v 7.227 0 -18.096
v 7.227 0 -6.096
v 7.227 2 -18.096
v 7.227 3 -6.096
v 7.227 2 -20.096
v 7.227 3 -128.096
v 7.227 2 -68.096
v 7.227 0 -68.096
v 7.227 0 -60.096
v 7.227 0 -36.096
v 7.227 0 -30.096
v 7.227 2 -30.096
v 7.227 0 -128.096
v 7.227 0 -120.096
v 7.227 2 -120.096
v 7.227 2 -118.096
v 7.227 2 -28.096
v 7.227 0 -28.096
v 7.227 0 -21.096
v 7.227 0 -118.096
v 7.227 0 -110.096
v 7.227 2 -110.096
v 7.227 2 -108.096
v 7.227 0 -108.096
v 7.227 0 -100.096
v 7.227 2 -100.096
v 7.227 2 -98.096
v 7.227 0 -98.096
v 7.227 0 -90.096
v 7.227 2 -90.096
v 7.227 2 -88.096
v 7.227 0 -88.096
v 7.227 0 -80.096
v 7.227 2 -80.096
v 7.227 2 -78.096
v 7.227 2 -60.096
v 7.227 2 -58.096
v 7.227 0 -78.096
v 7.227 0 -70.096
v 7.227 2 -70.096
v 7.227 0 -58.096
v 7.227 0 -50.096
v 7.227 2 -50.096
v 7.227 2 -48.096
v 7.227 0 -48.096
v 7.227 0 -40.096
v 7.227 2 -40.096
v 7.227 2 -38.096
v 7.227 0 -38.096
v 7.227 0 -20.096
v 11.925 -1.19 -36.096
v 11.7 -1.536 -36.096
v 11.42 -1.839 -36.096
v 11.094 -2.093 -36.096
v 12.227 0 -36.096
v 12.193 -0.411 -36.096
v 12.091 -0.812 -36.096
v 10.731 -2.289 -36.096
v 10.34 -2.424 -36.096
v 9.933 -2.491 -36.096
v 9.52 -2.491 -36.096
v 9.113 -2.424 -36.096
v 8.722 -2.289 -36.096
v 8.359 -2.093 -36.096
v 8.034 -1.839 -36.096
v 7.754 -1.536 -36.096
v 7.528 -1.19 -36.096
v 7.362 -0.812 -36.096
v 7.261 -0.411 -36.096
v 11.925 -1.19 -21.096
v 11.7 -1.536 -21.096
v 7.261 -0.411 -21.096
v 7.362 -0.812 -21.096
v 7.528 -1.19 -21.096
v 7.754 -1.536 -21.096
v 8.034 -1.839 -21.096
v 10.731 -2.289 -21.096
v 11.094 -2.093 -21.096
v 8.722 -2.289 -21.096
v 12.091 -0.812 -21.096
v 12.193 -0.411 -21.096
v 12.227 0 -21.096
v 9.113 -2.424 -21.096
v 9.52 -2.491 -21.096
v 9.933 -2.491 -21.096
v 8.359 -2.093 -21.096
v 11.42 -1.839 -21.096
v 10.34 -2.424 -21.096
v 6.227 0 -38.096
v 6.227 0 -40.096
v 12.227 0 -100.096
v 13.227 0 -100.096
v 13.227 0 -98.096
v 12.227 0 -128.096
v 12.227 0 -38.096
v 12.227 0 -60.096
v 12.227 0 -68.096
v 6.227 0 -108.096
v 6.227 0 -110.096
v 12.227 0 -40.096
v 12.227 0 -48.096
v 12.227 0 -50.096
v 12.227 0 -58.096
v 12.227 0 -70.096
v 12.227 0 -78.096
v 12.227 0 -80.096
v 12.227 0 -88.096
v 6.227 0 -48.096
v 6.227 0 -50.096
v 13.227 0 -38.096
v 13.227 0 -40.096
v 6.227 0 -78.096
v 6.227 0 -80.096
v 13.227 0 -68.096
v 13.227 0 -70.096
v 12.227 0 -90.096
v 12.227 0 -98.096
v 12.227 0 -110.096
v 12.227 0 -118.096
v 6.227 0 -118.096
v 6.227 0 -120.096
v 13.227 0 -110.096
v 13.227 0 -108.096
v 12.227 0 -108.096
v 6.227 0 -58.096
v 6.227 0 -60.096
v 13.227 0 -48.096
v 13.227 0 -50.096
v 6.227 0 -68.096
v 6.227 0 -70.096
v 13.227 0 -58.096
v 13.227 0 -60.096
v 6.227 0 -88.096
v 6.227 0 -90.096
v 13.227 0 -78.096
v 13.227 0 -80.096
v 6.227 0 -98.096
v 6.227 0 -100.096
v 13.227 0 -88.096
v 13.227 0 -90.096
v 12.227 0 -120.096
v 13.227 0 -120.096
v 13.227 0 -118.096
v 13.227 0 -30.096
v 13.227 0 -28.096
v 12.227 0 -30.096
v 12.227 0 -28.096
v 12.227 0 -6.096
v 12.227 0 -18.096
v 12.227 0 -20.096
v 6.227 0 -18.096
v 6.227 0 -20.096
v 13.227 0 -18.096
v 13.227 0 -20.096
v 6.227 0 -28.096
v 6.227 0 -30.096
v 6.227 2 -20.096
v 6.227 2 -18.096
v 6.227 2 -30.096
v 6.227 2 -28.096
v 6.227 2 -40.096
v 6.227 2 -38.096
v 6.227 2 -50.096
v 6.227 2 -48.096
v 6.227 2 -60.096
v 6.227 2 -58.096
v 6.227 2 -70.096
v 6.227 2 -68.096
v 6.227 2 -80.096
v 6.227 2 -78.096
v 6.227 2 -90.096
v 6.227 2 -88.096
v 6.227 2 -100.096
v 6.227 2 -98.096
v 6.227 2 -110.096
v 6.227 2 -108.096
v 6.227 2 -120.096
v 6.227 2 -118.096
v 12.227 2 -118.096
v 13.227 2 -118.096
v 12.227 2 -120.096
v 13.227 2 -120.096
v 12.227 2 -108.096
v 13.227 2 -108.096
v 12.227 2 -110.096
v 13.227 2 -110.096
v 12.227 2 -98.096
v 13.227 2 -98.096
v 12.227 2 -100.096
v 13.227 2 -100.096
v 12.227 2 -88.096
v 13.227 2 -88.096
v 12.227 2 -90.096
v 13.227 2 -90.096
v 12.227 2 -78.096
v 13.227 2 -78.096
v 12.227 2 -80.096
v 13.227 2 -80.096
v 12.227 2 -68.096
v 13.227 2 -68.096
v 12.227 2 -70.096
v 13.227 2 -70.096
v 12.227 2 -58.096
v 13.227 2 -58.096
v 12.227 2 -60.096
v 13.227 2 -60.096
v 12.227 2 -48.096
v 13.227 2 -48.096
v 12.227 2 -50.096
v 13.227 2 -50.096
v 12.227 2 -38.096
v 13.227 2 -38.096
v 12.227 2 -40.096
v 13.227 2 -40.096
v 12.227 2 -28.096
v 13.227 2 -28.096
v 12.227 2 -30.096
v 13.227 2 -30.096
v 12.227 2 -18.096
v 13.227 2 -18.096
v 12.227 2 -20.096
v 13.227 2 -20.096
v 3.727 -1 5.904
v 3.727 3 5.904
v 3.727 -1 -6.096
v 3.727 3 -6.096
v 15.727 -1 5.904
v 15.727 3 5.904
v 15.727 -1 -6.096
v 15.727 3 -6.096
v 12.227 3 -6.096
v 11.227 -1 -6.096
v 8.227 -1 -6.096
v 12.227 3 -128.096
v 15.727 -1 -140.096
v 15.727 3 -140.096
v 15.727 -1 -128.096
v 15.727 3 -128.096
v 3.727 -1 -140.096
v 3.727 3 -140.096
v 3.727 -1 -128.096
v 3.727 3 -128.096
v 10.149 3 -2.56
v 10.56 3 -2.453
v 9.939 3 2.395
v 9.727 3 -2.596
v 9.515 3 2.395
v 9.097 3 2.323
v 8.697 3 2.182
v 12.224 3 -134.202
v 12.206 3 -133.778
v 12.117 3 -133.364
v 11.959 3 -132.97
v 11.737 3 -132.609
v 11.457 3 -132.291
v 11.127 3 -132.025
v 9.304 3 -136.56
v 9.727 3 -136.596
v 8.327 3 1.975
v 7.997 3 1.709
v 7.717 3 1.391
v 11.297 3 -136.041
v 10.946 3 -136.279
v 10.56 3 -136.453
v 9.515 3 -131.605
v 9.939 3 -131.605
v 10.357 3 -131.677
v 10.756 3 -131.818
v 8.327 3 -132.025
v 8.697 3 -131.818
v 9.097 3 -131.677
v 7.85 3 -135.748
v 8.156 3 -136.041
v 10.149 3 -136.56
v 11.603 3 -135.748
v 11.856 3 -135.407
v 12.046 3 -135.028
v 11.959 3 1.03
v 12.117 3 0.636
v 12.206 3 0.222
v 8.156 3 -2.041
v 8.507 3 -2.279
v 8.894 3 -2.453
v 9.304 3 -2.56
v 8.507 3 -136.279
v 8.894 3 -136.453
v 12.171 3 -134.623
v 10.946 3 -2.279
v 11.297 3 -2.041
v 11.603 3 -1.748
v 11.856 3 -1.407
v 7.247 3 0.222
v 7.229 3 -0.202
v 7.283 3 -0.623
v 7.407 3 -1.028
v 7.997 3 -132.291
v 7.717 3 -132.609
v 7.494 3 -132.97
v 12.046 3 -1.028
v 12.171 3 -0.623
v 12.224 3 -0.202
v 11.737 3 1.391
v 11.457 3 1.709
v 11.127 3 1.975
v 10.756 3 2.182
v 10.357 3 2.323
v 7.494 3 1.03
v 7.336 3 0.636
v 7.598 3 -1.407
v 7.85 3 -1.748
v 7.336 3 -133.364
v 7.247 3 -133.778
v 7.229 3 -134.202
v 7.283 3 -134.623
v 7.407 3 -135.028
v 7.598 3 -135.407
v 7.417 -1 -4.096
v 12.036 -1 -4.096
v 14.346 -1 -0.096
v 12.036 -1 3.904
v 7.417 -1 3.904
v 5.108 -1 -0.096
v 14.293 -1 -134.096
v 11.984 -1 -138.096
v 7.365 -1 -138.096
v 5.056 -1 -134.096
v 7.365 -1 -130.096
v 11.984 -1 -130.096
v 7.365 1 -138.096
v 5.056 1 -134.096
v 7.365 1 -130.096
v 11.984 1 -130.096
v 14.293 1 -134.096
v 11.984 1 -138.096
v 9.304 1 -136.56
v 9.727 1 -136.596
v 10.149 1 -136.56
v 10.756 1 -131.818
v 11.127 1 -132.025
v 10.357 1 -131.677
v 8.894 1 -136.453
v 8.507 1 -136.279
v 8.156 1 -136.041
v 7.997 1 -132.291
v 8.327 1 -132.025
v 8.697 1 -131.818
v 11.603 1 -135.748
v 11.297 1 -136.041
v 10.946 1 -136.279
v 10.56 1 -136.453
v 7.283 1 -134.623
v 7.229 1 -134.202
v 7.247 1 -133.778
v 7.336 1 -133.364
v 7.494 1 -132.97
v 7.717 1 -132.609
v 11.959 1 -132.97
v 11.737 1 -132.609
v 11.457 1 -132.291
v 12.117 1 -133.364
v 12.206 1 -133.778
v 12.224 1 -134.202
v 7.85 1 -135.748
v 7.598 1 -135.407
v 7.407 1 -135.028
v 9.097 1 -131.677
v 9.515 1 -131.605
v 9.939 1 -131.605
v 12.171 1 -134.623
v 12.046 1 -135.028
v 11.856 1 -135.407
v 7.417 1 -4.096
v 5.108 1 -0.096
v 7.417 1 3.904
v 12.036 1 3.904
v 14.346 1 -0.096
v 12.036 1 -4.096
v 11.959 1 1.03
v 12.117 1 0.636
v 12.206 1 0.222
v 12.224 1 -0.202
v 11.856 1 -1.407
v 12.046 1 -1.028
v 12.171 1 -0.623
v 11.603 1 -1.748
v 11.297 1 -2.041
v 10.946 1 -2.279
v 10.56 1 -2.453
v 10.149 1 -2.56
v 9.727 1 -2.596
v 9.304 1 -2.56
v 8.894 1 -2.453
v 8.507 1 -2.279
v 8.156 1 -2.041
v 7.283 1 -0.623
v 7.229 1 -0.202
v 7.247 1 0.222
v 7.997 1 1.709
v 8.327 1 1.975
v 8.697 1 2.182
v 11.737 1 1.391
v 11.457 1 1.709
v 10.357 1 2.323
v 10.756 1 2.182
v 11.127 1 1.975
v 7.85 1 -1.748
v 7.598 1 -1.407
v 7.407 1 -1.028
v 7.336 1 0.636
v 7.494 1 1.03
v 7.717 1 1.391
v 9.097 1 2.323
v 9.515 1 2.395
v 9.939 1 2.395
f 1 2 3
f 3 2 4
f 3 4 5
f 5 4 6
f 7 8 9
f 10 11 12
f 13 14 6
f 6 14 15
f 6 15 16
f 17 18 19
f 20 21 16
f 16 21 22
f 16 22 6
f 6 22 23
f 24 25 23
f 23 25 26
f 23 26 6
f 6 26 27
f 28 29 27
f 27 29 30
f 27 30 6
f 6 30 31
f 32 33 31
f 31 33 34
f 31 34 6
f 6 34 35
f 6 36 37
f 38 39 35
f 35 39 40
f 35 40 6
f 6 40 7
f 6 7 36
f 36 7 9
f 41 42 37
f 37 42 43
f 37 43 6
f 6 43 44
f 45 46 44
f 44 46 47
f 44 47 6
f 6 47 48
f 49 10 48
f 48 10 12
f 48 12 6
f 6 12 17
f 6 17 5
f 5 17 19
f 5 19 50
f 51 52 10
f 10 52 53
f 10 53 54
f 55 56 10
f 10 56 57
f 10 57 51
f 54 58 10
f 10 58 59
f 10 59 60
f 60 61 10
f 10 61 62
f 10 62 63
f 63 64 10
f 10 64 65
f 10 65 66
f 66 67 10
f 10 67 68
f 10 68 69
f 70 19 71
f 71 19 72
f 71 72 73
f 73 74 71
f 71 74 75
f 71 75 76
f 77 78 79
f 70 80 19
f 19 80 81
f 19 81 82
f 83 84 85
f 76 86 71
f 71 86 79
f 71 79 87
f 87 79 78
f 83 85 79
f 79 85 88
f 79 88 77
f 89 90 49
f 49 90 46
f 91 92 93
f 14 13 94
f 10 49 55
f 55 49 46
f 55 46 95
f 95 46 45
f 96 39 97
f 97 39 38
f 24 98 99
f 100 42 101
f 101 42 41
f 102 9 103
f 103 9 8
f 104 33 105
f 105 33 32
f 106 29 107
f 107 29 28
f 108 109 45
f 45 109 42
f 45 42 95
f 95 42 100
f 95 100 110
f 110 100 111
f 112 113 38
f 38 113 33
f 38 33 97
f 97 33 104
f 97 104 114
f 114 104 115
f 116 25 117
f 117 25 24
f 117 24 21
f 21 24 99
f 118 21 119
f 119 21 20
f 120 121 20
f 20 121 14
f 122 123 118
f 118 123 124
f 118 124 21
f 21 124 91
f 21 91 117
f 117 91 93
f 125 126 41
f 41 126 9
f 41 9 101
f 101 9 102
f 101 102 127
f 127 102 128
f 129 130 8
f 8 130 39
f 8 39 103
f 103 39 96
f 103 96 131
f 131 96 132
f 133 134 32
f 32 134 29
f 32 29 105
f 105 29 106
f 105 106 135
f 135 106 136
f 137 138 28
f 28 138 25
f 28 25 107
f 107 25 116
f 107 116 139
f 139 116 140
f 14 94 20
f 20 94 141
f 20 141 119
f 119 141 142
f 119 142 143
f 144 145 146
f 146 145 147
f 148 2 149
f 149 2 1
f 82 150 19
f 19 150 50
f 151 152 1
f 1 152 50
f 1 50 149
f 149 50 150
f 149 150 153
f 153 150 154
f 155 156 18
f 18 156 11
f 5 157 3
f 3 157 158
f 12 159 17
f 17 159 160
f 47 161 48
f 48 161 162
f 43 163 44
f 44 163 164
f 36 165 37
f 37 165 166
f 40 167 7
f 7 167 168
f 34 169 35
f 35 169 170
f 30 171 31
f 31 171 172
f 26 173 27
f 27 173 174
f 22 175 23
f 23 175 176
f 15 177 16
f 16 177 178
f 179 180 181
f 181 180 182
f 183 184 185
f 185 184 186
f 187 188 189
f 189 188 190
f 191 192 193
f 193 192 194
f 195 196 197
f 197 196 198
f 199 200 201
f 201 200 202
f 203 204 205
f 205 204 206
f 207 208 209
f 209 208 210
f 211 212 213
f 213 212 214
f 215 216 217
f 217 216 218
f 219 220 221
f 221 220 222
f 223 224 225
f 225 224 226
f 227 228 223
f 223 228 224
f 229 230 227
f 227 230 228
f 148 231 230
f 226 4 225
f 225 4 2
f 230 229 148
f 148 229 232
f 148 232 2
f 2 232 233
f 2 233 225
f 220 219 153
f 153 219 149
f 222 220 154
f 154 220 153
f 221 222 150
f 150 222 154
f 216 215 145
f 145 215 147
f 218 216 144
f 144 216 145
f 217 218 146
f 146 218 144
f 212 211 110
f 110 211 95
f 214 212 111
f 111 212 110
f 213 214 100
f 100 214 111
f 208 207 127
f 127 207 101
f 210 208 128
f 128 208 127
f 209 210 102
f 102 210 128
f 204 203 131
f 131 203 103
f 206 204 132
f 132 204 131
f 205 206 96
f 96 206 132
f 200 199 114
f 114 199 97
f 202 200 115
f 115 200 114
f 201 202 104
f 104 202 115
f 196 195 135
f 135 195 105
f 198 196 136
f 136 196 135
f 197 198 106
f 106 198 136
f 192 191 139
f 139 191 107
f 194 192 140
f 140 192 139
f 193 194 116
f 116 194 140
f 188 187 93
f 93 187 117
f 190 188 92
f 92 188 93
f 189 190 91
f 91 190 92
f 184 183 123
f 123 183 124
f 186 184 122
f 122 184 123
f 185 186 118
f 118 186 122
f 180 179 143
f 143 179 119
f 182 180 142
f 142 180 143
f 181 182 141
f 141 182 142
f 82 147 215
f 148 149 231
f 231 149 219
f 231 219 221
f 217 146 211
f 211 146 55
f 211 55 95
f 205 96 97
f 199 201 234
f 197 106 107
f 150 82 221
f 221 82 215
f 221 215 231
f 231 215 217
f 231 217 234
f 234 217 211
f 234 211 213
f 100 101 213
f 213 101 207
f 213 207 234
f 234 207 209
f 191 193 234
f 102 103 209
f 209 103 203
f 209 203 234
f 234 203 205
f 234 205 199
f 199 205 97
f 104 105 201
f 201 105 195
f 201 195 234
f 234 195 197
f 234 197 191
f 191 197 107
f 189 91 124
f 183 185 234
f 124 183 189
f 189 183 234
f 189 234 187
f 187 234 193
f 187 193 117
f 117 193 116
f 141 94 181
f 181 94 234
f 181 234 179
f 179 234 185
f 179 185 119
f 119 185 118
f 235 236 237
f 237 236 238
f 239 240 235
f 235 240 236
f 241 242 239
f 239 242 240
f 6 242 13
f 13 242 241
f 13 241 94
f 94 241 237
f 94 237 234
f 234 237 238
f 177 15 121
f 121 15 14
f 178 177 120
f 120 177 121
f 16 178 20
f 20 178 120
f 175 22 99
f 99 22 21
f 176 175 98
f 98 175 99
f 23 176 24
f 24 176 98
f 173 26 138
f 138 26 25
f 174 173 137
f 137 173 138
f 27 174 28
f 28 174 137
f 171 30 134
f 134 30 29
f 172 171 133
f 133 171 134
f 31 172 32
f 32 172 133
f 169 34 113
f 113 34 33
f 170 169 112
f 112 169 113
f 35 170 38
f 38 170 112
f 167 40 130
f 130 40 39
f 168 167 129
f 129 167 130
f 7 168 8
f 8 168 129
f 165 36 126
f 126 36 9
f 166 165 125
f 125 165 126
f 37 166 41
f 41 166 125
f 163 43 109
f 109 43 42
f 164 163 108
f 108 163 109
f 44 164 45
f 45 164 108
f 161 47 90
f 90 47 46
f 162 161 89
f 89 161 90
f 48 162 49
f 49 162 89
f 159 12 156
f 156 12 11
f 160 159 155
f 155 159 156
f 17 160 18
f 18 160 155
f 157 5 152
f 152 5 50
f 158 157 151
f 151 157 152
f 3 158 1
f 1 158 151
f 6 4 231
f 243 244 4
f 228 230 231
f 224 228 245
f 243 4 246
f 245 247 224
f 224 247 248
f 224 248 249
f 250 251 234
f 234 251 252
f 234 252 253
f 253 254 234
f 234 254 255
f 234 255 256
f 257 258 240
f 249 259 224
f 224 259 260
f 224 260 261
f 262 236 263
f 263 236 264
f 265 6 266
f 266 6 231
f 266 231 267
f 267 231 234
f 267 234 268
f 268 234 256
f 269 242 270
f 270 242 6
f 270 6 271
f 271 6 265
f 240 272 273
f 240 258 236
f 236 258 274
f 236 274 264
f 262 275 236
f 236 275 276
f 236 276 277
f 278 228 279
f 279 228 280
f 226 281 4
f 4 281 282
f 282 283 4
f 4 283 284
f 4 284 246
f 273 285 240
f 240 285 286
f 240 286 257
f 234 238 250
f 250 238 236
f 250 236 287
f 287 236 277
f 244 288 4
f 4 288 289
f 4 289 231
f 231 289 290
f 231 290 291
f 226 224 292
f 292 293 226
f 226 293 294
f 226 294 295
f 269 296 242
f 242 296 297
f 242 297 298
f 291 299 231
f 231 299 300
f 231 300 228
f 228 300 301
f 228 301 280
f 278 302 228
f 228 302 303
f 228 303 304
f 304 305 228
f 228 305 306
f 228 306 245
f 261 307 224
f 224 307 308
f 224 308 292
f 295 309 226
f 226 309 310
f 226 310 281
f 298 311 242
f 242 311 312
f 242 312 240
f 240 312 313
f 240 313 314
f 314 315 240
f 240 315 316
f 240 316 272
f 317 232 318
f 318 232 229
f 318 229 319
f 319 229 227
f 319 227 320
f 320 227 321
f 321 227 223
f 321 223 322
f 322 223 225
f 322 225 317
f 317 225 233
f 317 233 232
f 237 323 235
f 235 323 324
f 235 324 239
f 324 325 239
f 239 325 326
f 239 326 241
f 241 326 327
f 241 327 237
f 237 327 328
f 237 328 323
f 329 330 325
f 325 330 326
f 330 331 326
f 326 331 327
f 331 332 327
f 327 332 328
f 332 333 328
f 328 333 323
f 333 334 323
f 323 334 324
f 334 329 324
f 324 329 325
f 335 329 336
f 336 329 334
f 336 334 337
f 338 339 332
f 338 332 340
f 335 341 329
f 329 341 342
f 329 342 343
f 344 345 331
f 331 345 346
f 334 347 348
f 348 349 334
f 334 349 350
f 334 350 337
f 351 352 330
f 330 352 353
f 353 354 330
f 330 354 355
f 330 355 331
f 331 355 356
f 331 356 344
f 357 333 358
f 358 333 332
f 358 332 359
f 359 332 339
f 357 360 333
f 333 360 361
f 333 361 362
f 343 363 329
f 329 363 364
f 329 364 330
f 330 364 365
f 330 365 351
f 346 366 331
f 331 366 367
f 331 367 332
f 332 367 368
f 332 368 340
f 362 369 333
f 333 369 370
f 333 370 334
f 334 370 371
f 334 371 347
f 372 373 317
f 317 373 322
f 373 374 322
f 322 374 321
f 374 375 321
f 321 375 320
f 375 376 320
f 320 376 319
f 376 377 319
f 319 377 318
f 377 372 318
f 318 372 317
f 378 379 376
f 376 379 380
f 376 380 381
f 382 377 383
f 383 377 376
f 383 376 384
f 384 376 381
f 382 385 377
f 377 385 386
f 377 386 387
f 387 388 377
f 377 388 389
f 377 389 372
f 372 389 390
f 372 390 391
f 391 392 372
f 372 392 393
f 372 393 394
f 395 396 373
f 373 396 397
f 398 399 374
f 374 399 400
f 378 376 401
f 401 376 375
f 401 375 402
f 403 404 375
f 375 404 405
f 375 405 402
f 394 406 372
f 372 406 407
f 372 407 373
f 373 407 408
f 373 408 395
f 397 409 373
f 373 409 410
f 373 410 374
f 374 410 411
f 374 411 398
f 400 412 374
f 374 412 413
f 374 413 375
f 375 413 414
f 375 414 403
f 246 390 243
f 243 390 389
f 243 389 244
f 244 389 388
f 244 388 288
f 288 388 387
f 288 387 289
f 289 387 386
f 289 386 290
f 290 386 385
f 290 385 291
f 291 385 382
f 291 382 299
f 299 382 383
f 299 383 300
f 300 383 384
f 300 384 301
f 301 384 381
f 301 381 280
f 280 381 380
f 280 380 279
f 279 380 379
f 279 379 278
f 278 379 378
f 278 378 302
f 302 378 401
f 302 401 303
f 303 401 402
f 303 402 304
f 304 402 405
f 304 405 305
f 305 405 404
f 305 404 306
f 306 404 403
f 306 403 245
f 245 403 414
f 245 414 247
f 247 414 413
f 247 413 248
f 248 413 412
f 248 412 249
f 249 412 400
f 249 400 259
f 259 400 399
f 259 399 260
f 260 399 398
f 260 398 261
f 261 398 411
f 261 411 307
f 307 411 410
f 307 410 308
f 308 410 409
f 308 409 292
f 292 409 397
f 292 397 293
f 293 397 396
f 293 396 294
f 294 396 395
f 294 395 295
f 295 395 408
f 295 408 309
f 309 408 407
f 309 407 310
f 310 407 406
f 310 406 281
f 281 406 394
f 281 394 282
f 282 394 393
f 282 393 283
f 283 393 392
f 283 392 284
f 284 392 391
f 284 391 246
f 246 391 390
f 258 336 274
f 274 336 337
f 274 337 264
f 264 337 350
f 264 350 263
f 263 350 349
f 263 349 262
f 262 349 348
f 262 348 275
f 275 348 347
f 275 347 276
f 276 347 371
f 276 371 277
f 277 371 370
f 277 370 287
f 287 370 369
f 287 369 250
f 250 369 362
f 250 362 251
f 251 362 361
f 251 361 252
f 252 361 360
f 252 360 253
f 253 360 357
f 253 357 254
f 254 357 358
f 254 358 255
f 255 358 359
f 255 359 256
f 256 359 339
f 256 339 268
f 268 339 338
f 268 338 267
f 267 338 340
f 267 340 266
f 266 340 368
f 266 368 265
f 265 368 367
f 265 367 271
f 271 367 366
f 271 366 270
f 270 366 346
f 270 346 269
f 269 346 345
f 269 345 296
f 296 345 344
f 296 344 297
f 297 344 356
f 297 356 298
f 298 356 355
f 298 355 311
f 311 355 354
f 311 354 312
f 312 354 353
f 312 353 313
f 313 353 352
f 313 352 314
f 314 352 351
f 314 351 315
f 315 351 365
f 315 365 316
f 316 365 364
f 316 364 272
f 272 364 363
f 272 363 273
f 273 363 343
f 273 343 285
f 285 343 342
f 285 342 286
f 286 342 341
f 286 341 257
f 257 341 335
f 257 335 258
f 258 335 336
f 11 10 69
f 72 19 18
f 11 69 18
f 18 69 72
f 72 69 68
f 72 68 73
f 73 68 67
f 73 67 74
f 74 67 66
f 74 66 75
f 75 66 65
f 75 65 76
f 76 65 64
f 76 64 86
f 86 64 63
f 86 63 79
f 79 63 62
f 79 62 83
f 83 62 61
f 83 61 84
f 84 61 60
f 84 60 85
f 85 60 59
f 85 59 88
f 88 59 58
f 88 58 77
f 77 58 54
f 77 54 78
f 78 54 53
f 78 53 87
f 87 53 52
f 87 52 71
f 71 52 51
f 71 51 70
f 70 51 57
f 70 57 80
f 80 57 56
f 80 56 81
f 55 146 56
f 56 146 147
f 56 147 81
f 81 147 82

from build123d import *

# Parameters (mm, degrees)
BOSS_EXTRUDE1_DEPTH = 2
BOSS_EXTRUDE2_DEPTH = 1
SKETCH3_W           = 12
SKETCH3_H           = 12
BOSS_EXTRUDE3_DEPTH = 1
CUT_EXTRUDE1_DEPTH  = 2
SKETCH5_R           = 2.5
CUT_EXTRUDE2_DEPTH  = 5
SKETCH6_W           = 3
SKETCH6_H           = 15
BOSS_EXTRUDE4_DEPTH = 5
CUT_EXTRUDE3_DEPTH  = 30
SKETCH9_W           = 3
SKETCH9_H           = 7
CUT_EXTRUDE5_DEPTH  = 20
SKETCH10_W          = 5
SKETCH10_H          = 15
BOSS_EXTRUDE5_DEPTH = 3
CUT_EXTRUDE7_DEPTH  = 20


with BuildPart() as part:
    # Sketch1 → Boss-Extrude1 (new body)
    with BuildSketch(Plane(origin=(0, 0, 0), x_dir=(1, 0, 0), z_dir=(0, 1, 0))):
        Polygon((7.22672382, 6.096), (7.22672382, 18.096), (6.22672382, 18.096), (6.22672382, 20.096), (7.22672382, 20.096), (7.22672382, 28.096), (6.22672382, 28.096), (6.22672382, 30.096), (7.22672382, 30.096), (7.22672382, 38.096), (6.22672382, 38.096), (6.22672382, 40.096), (7.22672382, 40.096), (7.22672382, 48.096), (6.22672382, 48.096), (6.22672382, 50.096), (7.22672382, 50.096), (7.22672382, 58.096), (6.22672382, 58.096), (6.22672382, 60.096), (7.22672382, 60.096), (7.22672382, 68.096), (6.22672382, 68.096), (6.22672382, 70.096), (7.22672382, 70.096), (7.22672382, 78.096), (6.22672382, 78.096), (6.22672382, 80.096), (7.22672382, 80.096), (7.22672382, 88.096), (6.22672382, 88.096), (6.22672382, 90.096), (7.22672382, 90.096), (7.22672382, 98.096), (6.22672382, 98.096), (6.22672382, 100.096), (7.22672382, 100.096), (7.22672382, 108.096), (6.22672382, 108.096), (6.22672382, 110.096), (7.22672382, 110.096), (7.22672382, 118.096), (6.22672382, 118.096), (6.22672382, 120.096), (7.22672382, 120.096), (7.22672382, 128.096), (3.72672382, 128.096), (3.72672382, 140.096), (15.72672382, 140.096), (15.72672382, 128.096), (12.22672382, 128.096), (12.22672382, 120.096), (13.22672382, 120.096), (13.22672382, 118.096), (12.22672382, 118.096), (12.22672382, 110.096), (13.226723821, 110.096), (13.226723821, 108.096), (12.22672382, 108.096), (12.22672382, 100.096), (13.226723821, 100.096), (13.226723821, 98.096), (12.22672382, 98.096), (12.22672382, 90.096), (13.226723821, 90.096), (13.226723821, 88.096), (12.22672382, 88.096), (12.22672382, 80.096), (13.226723821, 80.096), (13.226723821, 78.096), (12.22672382, 78.096), (12.22672382, 70.096), (13.226723821, 70.096), (13.226723821, 68.096), (12.22672382, 68.096), (12.22672382, 60.096), (13.226723821, 60.096), (13.226723821, 58.096), (12.22672382, 58.096), (12.22672382, 50.096), (13.226723821, 50.096), (13.226723821, 48.096), (12.22672382, 48.096), (12.22672382, 40.096), (13.226723821, 40.096), (13.226723821, 38.096), (12.22672382, 38.096), (12.22672382, 30.096), (13.226723821, 30.096), (13.226723821, 28.096), (12.22672382, 28.096), (12.22672382, 20.096), (13.226723821, 20.096), (13.226723821, 18.096), (12.22672382, 18.096), (12.22672382, 6.096), (15.72672382, 6.096), (15.72672382, -5.904), (3.72672382, -5.904), (3.72672382, 6.096), align=None)
    extrude(amount=BOSS_EXTRUDE1_DEPTH)

    # Sketch2 → Boss-Extrude2 (add)
    with BuildSketch(Plane(origin=(0, 2, 0), x_dir=(1, 0, 0), z_dir=(0, 1, 0))):
        Polygon((3.72672382, 140.096), (15.72672382, 140.096), (15.72672382, 128.096), (12.22672382, 128.096), (12.22672382, 6.096), (15.72672382, 6.096), (15.72672382, -5.904), (3.72672382, -5.904), (3.72672382, 6.096), (7.22672382, 6.096), (7.22672382, 128.096), (3.72672382, 128.096), align=None)
    extrude(amount=BOSS_EXTRUDE2_DEPTH)

    # Sketch3 → Boss-Extrude3 (add)
    with BuildSketch(Plane(origin=(0, 0, 0), x_dir=(-1, 0, 0), z_dir=(0, -1, 0))):
        with Locations((-9.72672382, 134.096)):
            Rectangle(SKETCH3_W, SKETCH3_H)
        with Locations((-9.72672382, 0.096)):
            Rectangle(SKETCH3_W, SKETCH3_H)
    extrude(amount=BOSS_EXTRUDE3_DEPTH)

    # Sketch4 → Cut-Extrude1 (cut)
    with BuildSketch(Plane(origin=(0, -1, 0), x_dir=(-1, 0, 0), z_dir=(0, -1, 0))):
        Polygon((-7.365059478, 138.096), (-11.983861632, 138.096), (-14.293262708, 134.096), (-11.983861632, 130.096), (-7.365059478, 130.096), (-5.055658401, 134.096), align=None)
        Polygon((-7.417322744, 4.096), (-12.036124897, 4.096), (-14.345525974, 0.096), (-12.036124897, -3.904), (-7.417322744, -3.904), (-5.107921667, 0.096), align=None)
    extrude(amount=-CUT_EXTRUDE1_DEPTH, mode=Mode.SUBTRACT)

    # Sketch5 → Cut-Extrude2 (cut)
    with BuildSketch(Plane(origin=(0, 1, 0), x_dir=(-1, 0, 0), z_dir=(0, -1, 0))):
        with Locations(Location((-9.72672382, 0.096, 0), (0, 0, 90))):
            Circle(SKETCH5_R)
        with Locations(Location((-9.72672382, 134.096, 0), (0, 0, 90))):
            Circle(SKETCH5_R)
    extrude(amount=-CUT_EXTRUDE2_DEPTH, mode=Mode.SUBTRACT)

    # Sketch6 → Boss-Extrude4 (add)
    with BuildSketch(Plane(origin=(0, 0, 0), x_dir=(-1, 0, 0), z_dir=(0, -1, 0))):
        with Locations((-9.72672382, 28.596)):
            Rectangle(SKETCH6_W, SKETCH6_H)
    extrude(amount=BOSS_EXTRUDE4_DEPTH)

    # Sketch7 → Cut-Extrude3 (cut)
    with BuildSketch(Plane(origin=(0, 0, -36.096), x_dir=(-1, 0, 0), z_dir=(0, 0, -1))):
        with BuildLine():
            Line((-9.72672381, -5), (-8.22672382, -5))
            Line((-8.22672382, -5), (-8.22672382, -1))
            add(Edge.make_bspline(
                [(-9.72672382, -5), (-8.22672382, -5), (-8.22672382, -1)],
                knots=[6.283185307, 6.283185307, 6.283185307, 7.853981634, 7.853981634, 7.853981634], degree=2, weights=[1, 0.707106781, 1]))
        make_face()
        with BuildLine():
            Line((-11.22672382, -5), (-9.72672381, -5))
            add(Edge.make_bspline(
                [(-11.22672382, -1), (-11.22672382, -5), (-9.72672382, -5)],
                knots=[4.71238898, 4.71238898, 4.71238898, 6.283185307, 6.283185307, 6.283185307], degree=2, weights=[1, 0.707106781, 1]))
            Line((-11.22672382, -1), (-11.22672382, -5))
        make_face()
    extrude(amount=-CUT_EXTRUDE3_DEPTH, mode=Mode.SUBTRACT)

    # Sketch9 → Cut-Extrude5 (cut)
    with BuildSketch(Plane.XY.offset(-21.096)):
        with Locations((9.72672382, -3.5)):
            Rectangle(SKETCH9_W, SKETCH9_H)
    extrude(amount=-CUT_EXTRUDE5_DEPTH, mode=Mode.SUBTRACT)

    # Sketch10 → Boss-Extrude5 (add)
    with BuildSketch(Plane(origin=(0, 0, 0), x_dir=(-1, 0, 0), z_dir=(0, -1, 0))):
        with Locations((-9.72672382, 28.596)):
            Rectangle(SKETCH10_W, SKETCH10_H)
    extrude(amount=BOSS_EXTRUDE5_DEPTH)

    # Sketch11 → Cut-Extrude7 (cut)
    with BuildSketch(Plane(origin=(0, 0, -36.096), x_dir=(-1, 0, 0), z_dir=(0, 0, -1))):
        with BuildLine():
            Line((-7.22672382, -3), (-7.22672382, 0))
            ThreePointArc((-7.22672382, 0), (-9.72672382, -2.5), (-12.22672382, 0))
            Line((-12.22672382, 0), (-12.22672382, -3))
            Line((-12.22672382, -3), (-7.22672382, -3))
        make_face()
    extrude(amount=-CUT_EXTRUDE7_DEPTH, mode=Mode.SUBTRACT)


solid = part.part
